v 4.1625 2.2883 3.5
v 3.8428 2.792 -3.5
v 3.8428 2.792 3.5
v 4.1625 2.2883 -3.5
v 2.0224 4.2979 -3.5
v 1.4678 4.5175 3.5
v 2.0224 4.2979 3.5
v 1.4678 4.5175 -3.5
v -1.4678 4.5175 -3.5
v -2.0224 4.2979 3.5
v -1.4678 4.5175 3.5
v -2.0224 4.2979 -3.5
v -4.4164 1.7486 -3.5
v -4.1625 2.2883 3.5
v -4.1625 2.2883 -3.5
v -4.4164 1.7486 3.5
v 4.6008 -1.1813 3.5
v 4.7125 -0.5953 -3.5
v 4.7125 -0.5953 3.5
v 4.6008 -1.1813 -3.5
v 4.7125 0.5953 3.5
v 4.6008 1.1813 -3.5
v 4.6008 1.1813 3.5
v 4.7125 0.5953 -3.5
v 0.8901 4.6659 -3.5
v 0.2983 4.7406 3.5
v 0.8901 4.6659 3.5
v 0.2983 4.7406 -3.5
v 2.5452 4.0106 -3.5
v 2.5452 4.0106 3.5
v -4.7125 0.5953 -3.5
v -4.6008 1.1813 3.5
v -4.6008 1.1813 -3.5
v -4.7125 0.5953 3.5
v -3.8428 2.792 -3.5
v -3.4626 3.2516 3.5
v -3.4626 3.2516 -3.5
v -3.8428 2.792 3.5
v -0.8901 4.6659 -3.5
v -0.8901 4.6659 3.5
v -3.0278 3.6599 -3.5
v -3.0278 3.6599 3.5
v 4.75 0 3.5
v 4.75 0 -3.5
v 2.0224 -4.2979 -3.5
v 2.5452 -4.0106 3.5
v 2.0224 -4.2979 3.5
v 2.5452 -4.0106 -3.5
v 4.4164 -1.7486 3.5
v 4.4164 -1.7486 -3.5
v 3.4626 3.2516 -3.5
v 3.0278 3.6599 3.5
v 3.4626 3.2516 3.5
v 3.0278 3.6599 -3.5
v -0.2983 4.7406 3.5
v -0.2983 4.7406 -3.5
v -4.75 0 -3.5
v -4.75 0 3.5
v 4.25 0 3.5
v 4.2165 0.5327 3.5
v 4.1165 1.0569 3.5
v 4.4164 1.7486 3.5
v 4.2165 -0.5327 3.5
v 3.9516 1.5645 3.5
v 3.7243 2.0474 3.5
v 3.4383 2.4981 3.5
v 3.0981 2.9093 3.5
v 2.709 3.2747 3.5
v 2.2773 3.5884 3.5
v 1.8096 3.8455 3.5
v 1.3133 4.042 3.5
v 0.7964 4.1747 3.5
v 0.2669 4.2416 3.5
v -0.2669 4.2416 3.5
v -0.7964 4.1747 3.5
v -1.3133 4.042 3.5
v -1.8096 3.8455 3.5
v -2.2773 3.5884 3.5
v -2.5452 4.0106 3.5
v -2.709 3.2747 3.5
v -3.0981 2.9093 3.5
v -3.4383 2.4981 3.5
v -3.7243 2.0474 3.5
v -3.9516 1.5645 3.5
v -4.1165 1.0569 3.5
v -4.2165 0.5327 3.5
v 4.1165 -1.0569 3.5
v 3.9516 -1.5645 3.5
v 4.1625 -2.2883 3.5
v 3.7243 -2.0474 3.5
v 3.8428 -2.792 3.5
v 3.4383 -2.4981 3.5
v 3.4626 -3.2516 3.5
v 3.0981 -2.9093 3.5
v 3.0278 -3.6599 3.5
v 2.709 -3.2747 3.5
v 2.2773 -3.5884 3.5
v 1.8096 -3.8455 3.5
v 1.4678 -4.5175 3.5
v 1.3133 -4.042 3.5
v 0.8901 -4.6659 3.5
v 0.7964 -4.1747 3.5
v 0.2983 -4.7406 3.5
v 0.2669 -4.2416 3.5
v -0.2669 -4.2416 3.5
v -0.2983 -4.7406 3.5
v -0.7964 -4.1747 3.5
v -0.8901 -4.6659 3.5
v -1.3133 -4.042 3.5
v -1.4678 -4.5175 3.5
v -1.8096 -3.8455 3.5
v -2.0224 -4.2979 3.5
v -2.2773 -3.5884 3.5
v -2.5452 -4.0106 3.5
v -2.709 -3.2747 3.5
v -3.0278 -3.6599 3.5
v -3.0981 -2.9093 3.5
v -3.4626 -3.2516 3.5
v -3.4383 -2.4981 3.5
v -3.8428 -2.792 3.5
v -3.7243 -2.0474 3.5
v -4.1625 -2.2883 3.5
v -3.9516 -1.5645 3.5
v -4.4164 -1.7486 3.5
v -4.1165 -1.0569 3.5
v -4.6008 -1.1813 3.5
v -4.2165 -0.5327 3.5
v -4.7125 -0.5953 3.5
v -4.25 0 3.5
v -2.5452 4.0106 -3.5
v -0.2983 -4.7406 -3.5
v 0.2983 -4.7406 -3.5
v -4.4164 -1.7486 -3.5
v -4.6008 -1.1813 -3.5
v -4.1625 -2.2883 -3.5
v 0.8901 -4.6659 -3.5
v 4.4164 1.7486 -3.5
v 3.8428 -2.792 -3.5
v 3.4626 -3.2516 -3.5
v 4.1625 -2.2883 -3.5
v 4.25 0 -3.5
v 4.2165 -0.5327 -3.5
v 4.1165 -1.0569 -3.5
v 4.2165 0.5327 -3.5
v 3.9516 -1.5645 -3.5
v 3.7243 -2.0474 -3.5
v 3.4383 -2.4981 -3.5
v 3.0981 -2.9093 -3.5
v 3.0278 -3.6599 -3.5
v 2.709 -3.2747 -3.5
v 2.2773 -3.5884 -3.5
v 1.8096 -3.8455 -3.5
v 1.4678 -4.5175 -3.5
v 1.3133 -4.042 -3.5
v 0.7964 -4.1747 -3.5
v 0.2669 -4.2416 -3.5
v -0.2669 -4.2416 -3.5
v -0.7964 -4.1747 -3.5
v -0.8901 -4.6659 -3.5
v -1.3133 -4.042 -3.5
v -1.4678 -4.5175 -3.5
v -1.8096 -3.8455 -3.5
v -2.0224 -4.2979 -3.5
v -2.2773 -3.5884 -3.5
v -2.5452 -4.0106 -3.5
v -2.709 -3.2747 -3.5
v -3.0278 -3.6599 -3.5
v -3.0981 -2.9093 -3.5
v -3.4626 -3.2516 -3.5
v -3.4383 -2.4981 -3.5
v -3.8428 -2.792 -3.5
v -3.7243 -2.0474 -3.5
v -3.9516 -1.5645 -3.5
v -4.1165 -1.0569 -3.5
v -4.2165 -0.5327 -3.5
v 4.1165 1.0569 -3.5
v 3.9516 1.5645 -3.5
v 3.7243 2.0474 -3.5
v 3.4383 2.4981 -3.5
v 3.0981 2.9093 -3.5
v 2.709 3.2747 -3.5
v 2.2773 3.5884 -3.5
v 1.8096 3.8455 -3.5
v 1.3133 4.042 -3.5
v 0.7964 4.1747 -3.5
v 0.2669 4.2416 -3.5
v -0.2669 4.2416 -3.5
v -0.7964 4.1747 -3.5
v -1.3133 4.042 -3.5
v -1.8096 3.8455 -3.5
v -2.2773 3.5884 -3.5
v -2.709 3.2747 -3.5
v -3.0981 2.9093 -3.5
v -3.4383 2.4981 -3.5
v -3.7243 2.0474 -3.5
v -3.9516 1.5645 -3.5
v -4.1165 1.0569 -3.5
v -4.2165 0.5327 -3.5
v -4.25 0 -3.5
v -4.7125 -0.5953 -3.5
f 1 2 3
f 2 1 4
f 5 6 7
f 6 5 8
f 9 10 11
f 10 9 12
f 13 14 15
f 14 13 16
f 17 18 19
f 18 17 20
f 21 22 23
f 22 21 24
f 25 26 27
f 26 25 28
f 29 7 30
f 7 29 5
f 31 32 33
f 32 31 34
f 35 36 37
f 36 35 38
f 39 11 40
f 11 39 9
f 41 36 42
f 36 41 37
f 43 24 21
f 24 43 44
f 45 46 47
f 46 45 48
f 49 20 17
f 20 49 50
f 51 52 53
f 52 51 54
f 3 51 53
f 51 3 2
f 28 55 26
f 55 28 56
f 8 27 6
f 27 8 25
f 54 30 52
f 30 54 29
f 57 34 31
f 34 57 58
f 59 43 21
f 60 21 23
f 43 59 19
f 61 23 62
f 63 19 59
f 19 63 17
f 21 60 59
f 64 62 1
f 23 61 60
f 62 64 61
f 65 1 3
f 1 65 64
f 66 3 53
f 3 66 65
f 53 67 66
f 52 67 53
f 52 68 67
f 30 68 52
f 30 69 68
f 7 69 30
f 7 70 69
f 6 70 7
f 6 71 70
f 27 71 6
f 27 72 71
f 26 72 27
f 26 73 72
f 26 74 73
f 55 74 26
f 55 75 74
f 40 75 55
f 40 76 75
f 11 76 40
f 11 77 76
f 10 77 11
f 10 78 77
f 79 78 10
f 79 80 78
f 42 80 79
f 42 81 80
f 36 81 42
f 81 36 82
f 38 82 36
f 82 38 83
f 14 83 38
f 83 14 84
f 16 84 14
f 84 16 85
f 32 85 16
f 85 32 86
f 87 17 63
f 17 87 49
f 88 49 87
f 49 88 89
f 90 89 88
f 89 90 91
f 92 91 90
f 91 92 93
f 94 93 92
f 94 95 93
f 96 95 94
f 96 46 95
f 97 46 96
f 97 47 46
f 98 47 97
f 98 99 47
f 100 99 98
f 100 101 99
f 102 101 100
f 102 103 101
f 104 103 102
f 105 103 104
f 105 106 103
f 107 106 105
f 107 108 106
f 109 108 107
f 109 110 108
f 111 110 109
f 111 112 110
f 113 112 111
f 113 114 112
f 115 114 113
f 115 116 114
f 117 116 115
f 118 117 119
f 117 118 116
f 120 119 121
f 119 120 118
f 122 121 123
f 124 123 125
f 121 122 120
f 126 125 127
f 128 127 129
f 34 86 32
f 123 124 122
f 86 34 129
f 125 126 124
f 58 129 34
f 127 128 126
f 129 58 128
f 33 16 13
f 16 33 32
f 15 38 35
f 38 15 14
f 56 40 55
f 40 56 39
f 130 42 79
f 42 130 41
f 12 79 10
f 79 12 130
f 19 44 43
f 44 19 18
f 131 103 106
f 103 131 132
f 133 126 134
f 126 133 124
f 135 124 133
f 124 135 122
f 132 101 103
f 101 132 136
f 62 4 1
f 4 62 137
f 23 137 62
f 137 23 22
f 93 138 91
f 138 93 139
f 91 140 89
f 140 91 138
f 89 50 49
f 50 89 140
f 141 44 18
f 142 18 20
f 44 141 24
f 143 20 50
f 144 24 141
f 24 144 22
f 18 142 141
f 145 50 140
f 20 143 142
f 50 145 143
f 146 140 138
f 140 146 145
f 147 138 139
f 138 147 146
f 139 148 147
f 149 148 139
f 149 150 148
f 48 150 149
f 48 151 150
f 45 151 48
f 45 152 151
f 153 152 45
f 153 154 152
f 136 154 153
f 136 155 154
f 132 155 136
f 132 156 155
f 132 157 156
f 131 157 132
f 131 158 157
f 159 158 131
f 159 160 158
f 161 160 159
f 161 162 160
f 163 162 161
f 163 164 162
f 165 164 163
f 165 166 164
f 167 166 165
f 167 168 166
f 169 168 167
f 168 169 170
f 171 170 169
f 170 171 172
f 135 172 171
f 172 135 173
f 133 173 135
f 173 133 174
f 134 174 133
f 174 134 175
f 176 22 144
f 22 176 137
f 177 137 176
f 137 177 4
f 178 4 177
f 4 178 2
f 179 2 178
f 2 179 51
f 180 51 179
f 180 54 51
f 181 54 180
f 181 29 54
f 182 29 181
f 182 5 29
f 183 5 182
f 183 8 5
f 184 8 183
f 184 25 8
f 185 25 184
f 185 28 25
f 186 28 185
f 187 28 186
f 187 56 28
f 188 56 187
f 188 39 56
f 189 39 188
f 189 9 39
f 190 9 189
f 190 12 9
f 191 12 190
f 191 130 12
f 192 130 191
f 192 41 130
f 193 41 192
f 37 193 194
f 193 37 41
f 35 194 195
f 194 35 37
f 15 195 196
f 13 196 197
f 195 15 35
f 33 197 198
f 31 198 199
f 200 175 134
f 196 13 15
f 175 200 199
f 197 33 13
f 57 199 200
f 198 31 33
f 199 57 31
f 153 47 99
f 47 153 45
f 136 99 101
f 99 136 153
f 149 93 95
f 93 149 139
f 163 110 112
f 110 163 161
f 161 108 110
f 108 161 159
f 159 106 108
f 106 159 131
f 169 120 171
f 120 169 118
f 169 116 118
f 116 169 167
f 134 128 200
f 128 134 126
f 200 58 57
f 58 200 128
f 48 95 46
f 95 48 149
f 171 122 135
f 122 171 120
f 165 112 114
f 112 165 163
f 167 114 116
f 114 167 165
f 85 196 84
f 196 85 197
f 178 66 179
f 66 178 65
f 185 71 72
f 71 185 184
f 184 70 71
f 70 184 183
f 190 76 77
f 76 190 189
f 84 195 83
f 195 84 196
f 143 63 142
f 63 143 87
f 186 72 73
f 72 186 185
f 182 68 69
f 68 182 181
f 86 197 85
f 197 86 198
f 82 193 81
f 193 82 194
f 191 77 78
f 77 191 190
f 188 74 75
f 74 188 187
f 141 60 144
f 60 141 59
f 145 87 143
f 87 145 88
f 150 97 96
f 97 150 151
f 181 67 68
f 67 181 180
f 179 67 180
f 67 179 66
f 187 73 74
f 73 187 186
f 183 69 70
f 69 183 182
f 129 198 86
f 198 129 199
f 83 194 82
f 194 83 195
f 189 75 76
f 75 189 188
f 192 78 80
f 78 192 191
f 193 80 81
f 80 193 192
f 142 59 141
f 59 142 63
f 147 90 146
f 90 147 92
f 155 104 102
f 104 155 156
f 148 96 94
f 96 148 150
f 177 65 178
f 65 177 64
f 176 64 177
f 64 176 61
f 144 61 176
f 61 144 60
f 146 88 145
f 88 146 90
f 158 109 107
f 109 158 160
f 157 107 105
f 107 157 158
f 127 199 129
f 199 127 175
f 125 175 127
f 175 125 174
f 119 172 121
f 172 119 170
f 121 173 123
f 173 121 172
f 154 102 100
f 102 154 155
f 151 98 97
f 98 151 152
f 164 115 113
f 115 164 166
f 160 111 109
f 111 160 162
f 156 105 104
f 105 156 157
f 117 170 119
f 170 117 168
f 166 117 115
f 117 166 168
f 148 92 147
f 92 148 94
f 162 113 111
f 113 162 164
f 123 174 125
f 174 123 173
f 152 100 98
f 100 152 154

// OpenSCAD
$fn = 50;


difference() {
	union() {
		translate(v = [0, 0, -3.5000000000]) {
			cylinder(h = 7, r = 4.7500000000);
		}
	}
	union() {
		translate(v = [0, 0, -100.0000000000]) {
			cylinder(h = 200, r = 4.2500000000);
		}
	}
}
